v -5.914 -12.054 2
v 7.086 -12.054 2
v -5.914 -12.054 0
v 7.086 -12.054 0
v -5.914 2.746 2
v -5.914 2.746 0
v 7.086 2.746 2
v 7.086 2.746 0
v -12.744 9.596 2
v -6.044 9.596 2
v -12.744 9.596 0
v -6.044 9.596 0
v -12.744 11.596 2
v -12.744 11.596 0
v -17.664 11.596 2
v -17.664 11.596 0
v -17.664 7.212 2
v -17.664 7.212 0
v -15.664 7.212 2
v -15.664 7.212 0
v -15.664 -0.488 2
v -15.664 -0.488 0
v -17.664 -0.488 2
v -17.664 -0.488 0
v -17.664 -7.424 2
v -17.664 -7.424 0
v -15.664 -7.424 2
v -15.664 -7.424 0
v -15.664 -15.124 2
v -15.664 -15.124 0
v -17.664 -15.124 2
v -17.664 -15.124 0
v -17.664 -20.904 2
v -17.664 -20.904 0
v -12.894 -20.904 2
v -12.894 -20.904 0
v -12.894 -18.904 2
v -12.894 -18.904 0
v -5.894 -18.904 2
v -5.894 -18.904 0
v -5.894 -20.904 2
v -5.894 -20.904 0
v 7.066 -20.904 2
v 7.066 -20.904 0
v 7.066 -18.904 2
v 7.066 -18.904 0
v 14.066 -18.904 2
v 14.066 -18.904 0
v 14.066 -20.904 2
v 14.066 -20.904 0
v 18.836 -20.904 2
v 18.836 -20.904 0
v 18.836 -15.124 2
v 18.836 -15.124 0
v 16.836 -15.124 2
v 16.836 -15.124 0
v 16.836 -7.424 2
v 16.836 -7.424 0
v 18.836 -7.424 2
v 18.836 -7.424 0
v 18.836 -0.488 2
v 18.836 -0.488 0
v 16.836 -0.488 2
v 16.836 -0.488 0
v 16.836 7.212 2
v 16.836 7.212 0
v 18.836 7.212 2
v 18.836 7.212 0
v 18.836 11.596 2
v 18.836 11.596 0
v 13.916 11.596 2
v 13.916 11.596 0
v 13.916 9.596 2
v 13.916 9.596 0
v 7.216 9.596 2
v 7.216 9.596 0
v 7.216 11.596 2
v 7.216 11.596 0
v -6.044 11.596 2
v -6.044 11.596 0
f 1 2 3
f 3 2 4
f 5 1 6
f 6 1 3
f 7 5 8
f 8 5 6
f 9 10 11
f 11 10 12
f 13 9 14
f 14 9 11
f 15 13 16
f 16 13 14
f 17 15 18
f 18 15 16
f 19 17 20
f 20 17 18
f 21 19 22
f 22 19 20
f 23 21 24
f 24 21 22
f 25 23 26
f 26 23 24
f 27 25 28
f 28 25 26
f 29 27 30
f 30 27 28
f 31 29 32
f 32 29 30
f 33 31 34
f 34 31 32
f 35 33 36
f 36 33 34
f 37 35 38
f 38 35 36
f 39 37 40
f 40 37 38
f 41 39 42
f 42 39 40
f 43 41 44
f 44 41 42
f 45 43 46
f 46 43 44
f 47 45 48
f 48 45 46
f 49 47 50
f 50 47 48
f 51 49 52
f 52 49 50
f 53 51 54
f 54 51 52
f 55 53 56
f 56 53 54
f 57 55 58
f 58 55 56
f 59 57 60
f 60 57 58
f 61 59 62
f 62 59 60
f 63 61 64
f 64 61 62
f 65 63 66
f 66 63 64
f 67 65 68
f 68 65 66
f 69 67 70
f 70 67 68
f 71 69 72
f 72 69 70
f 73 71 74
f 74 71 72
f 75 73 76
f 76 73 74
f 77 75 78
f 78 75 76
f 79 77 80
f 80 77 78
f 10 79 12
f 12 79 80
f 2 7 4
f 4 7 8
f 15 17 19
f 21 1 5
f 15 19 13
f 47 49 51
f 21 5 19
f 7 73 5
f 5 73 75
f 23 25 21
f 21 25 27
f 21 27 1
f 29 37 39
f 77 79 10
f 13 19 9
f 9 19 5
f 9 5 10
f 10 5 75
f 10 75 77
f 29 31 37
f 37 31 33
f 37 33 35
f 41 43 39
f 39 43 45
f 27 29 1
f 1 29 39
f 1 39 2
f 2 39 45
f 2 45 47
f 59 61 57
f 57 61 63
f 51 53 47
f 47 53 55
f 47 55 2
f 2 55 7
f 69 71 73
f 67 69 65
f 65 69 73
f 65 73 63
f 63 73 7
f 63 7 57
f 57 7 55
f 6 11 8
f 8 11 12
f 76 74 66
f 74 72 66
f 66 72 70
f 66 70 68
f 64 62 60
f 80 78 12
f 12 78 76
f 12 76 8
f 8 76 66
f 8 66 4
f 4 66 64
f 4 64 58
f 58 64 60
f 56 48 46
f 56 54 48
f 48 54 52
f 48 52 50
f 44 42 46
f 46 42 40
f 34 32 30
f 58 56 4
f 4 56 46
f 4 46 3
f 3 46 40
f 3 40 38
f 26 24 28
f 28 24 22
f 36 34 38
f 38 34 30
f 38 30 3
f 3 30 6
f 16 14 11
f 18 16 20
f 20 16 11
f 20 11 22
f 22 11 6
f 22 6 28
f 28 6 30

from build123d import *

# Parameters (mm, degrees)
ESBO_O1_W                = 13
ESBO_O1_H                = 14.8
ESBO_O1_W_2              = 13.26
ESBO_O1_H_2              = 2
ESBO_O1_W_3              = 2
ESBO_O1_H_3              = 6.93625866
ESBO_O1_W_4              = 12.96
RESSALTO_EXTRUS_O1_DEPTH = 2


with BuildPart() as part:
    # Esboço1 → Ressalto-extrusão1 (new body)
    with BuildSketch(Plane.XY):
        Polygon((-12.744415021, 9.596420323), (-15.664415021, 9.596420323), (-15.664415021, 7.212009238), (-15.664415021, -0.487990763), (-15.664415021, -7.424249423), (-15.664415021, -15.124249427), (-15.664415021, -18.903579677), (-12.894415021, -18.903579677), (-5.894415021, -18.903579677), (7.065584979, -18.903579677), (14.065584979, -18.903579677), (16.835584979, -18.903579677), (16.835584979, -15.124249427), (16.835584979, -7.424249423), (16.835584979, -0.487990763), (16.835584979, 7.212009238), (16.835584979, 9.596420323), (13.915584979, 9.596420323), (7.215584979, 9.596420323), (-6.044415021, 9.596420323), align=None)
        with Locations((0.585584979, -4.653579677)):
            Rectangle(ESBO_O1_W, ESBO_O1_H, mode=Mode.SUBTRACT)
        Polygon((13.915584979, 11.596420323), (13.915584979, 9.596420323), (16.835584979, 9.596420323), (16.835584979, 7.212009238), (18.835584979, 7.212009238), (18.835584979, 11.596420323), align=None)
        with Locations((0.585584979, 10.596420323)):
            Rectangle(ESBO_O1_W_2, ESBO_O1_H_2)
        Polygon((-15.664415021, 7.212009238), (-15.664415021, 9.596420323), (-12.744415021, 9.596420323), (-12.744415021, 11.596420323), (-17.664415021, 11.596420323), (-17.664415021, 7.212009238), align=None)
        with Locations((-16.664415021, -3.956120093)):
            Rectangle(ESBO_O1_W_3, ESBO_O1_H_3)
        Polygon((-15.664415021, -18.903579677), (-15.664415021, -15.124249427), (-17.664415021, -15.124249427), (-17.664415021, -20.903579677), (-12.894415021, -20.903579677), (-12.894415021, -18.903579677), align=None)
        with Locations((0.585584979, -19.903579677)):
            Rectangle(ESBO_O1_W_4, ESBO_O1_H_2)
        Polygon((18.835584979, -15.124249427), (16.835584979, -15.124249427), (16.835584979, -18.903579677), (14.065584979, -18.903579677), (14.065584979, -20.903579677), (18.835584979, -20.903579677), align=None)
        with Locations((17.835584979, -3.956120093)):
            Rectangle(ESBO_O1_W_3, ESBO_O1_H_3)
    extrude(amount=RESSALTO_EXTRUS_O1_DEPTH)


solid = part.part
